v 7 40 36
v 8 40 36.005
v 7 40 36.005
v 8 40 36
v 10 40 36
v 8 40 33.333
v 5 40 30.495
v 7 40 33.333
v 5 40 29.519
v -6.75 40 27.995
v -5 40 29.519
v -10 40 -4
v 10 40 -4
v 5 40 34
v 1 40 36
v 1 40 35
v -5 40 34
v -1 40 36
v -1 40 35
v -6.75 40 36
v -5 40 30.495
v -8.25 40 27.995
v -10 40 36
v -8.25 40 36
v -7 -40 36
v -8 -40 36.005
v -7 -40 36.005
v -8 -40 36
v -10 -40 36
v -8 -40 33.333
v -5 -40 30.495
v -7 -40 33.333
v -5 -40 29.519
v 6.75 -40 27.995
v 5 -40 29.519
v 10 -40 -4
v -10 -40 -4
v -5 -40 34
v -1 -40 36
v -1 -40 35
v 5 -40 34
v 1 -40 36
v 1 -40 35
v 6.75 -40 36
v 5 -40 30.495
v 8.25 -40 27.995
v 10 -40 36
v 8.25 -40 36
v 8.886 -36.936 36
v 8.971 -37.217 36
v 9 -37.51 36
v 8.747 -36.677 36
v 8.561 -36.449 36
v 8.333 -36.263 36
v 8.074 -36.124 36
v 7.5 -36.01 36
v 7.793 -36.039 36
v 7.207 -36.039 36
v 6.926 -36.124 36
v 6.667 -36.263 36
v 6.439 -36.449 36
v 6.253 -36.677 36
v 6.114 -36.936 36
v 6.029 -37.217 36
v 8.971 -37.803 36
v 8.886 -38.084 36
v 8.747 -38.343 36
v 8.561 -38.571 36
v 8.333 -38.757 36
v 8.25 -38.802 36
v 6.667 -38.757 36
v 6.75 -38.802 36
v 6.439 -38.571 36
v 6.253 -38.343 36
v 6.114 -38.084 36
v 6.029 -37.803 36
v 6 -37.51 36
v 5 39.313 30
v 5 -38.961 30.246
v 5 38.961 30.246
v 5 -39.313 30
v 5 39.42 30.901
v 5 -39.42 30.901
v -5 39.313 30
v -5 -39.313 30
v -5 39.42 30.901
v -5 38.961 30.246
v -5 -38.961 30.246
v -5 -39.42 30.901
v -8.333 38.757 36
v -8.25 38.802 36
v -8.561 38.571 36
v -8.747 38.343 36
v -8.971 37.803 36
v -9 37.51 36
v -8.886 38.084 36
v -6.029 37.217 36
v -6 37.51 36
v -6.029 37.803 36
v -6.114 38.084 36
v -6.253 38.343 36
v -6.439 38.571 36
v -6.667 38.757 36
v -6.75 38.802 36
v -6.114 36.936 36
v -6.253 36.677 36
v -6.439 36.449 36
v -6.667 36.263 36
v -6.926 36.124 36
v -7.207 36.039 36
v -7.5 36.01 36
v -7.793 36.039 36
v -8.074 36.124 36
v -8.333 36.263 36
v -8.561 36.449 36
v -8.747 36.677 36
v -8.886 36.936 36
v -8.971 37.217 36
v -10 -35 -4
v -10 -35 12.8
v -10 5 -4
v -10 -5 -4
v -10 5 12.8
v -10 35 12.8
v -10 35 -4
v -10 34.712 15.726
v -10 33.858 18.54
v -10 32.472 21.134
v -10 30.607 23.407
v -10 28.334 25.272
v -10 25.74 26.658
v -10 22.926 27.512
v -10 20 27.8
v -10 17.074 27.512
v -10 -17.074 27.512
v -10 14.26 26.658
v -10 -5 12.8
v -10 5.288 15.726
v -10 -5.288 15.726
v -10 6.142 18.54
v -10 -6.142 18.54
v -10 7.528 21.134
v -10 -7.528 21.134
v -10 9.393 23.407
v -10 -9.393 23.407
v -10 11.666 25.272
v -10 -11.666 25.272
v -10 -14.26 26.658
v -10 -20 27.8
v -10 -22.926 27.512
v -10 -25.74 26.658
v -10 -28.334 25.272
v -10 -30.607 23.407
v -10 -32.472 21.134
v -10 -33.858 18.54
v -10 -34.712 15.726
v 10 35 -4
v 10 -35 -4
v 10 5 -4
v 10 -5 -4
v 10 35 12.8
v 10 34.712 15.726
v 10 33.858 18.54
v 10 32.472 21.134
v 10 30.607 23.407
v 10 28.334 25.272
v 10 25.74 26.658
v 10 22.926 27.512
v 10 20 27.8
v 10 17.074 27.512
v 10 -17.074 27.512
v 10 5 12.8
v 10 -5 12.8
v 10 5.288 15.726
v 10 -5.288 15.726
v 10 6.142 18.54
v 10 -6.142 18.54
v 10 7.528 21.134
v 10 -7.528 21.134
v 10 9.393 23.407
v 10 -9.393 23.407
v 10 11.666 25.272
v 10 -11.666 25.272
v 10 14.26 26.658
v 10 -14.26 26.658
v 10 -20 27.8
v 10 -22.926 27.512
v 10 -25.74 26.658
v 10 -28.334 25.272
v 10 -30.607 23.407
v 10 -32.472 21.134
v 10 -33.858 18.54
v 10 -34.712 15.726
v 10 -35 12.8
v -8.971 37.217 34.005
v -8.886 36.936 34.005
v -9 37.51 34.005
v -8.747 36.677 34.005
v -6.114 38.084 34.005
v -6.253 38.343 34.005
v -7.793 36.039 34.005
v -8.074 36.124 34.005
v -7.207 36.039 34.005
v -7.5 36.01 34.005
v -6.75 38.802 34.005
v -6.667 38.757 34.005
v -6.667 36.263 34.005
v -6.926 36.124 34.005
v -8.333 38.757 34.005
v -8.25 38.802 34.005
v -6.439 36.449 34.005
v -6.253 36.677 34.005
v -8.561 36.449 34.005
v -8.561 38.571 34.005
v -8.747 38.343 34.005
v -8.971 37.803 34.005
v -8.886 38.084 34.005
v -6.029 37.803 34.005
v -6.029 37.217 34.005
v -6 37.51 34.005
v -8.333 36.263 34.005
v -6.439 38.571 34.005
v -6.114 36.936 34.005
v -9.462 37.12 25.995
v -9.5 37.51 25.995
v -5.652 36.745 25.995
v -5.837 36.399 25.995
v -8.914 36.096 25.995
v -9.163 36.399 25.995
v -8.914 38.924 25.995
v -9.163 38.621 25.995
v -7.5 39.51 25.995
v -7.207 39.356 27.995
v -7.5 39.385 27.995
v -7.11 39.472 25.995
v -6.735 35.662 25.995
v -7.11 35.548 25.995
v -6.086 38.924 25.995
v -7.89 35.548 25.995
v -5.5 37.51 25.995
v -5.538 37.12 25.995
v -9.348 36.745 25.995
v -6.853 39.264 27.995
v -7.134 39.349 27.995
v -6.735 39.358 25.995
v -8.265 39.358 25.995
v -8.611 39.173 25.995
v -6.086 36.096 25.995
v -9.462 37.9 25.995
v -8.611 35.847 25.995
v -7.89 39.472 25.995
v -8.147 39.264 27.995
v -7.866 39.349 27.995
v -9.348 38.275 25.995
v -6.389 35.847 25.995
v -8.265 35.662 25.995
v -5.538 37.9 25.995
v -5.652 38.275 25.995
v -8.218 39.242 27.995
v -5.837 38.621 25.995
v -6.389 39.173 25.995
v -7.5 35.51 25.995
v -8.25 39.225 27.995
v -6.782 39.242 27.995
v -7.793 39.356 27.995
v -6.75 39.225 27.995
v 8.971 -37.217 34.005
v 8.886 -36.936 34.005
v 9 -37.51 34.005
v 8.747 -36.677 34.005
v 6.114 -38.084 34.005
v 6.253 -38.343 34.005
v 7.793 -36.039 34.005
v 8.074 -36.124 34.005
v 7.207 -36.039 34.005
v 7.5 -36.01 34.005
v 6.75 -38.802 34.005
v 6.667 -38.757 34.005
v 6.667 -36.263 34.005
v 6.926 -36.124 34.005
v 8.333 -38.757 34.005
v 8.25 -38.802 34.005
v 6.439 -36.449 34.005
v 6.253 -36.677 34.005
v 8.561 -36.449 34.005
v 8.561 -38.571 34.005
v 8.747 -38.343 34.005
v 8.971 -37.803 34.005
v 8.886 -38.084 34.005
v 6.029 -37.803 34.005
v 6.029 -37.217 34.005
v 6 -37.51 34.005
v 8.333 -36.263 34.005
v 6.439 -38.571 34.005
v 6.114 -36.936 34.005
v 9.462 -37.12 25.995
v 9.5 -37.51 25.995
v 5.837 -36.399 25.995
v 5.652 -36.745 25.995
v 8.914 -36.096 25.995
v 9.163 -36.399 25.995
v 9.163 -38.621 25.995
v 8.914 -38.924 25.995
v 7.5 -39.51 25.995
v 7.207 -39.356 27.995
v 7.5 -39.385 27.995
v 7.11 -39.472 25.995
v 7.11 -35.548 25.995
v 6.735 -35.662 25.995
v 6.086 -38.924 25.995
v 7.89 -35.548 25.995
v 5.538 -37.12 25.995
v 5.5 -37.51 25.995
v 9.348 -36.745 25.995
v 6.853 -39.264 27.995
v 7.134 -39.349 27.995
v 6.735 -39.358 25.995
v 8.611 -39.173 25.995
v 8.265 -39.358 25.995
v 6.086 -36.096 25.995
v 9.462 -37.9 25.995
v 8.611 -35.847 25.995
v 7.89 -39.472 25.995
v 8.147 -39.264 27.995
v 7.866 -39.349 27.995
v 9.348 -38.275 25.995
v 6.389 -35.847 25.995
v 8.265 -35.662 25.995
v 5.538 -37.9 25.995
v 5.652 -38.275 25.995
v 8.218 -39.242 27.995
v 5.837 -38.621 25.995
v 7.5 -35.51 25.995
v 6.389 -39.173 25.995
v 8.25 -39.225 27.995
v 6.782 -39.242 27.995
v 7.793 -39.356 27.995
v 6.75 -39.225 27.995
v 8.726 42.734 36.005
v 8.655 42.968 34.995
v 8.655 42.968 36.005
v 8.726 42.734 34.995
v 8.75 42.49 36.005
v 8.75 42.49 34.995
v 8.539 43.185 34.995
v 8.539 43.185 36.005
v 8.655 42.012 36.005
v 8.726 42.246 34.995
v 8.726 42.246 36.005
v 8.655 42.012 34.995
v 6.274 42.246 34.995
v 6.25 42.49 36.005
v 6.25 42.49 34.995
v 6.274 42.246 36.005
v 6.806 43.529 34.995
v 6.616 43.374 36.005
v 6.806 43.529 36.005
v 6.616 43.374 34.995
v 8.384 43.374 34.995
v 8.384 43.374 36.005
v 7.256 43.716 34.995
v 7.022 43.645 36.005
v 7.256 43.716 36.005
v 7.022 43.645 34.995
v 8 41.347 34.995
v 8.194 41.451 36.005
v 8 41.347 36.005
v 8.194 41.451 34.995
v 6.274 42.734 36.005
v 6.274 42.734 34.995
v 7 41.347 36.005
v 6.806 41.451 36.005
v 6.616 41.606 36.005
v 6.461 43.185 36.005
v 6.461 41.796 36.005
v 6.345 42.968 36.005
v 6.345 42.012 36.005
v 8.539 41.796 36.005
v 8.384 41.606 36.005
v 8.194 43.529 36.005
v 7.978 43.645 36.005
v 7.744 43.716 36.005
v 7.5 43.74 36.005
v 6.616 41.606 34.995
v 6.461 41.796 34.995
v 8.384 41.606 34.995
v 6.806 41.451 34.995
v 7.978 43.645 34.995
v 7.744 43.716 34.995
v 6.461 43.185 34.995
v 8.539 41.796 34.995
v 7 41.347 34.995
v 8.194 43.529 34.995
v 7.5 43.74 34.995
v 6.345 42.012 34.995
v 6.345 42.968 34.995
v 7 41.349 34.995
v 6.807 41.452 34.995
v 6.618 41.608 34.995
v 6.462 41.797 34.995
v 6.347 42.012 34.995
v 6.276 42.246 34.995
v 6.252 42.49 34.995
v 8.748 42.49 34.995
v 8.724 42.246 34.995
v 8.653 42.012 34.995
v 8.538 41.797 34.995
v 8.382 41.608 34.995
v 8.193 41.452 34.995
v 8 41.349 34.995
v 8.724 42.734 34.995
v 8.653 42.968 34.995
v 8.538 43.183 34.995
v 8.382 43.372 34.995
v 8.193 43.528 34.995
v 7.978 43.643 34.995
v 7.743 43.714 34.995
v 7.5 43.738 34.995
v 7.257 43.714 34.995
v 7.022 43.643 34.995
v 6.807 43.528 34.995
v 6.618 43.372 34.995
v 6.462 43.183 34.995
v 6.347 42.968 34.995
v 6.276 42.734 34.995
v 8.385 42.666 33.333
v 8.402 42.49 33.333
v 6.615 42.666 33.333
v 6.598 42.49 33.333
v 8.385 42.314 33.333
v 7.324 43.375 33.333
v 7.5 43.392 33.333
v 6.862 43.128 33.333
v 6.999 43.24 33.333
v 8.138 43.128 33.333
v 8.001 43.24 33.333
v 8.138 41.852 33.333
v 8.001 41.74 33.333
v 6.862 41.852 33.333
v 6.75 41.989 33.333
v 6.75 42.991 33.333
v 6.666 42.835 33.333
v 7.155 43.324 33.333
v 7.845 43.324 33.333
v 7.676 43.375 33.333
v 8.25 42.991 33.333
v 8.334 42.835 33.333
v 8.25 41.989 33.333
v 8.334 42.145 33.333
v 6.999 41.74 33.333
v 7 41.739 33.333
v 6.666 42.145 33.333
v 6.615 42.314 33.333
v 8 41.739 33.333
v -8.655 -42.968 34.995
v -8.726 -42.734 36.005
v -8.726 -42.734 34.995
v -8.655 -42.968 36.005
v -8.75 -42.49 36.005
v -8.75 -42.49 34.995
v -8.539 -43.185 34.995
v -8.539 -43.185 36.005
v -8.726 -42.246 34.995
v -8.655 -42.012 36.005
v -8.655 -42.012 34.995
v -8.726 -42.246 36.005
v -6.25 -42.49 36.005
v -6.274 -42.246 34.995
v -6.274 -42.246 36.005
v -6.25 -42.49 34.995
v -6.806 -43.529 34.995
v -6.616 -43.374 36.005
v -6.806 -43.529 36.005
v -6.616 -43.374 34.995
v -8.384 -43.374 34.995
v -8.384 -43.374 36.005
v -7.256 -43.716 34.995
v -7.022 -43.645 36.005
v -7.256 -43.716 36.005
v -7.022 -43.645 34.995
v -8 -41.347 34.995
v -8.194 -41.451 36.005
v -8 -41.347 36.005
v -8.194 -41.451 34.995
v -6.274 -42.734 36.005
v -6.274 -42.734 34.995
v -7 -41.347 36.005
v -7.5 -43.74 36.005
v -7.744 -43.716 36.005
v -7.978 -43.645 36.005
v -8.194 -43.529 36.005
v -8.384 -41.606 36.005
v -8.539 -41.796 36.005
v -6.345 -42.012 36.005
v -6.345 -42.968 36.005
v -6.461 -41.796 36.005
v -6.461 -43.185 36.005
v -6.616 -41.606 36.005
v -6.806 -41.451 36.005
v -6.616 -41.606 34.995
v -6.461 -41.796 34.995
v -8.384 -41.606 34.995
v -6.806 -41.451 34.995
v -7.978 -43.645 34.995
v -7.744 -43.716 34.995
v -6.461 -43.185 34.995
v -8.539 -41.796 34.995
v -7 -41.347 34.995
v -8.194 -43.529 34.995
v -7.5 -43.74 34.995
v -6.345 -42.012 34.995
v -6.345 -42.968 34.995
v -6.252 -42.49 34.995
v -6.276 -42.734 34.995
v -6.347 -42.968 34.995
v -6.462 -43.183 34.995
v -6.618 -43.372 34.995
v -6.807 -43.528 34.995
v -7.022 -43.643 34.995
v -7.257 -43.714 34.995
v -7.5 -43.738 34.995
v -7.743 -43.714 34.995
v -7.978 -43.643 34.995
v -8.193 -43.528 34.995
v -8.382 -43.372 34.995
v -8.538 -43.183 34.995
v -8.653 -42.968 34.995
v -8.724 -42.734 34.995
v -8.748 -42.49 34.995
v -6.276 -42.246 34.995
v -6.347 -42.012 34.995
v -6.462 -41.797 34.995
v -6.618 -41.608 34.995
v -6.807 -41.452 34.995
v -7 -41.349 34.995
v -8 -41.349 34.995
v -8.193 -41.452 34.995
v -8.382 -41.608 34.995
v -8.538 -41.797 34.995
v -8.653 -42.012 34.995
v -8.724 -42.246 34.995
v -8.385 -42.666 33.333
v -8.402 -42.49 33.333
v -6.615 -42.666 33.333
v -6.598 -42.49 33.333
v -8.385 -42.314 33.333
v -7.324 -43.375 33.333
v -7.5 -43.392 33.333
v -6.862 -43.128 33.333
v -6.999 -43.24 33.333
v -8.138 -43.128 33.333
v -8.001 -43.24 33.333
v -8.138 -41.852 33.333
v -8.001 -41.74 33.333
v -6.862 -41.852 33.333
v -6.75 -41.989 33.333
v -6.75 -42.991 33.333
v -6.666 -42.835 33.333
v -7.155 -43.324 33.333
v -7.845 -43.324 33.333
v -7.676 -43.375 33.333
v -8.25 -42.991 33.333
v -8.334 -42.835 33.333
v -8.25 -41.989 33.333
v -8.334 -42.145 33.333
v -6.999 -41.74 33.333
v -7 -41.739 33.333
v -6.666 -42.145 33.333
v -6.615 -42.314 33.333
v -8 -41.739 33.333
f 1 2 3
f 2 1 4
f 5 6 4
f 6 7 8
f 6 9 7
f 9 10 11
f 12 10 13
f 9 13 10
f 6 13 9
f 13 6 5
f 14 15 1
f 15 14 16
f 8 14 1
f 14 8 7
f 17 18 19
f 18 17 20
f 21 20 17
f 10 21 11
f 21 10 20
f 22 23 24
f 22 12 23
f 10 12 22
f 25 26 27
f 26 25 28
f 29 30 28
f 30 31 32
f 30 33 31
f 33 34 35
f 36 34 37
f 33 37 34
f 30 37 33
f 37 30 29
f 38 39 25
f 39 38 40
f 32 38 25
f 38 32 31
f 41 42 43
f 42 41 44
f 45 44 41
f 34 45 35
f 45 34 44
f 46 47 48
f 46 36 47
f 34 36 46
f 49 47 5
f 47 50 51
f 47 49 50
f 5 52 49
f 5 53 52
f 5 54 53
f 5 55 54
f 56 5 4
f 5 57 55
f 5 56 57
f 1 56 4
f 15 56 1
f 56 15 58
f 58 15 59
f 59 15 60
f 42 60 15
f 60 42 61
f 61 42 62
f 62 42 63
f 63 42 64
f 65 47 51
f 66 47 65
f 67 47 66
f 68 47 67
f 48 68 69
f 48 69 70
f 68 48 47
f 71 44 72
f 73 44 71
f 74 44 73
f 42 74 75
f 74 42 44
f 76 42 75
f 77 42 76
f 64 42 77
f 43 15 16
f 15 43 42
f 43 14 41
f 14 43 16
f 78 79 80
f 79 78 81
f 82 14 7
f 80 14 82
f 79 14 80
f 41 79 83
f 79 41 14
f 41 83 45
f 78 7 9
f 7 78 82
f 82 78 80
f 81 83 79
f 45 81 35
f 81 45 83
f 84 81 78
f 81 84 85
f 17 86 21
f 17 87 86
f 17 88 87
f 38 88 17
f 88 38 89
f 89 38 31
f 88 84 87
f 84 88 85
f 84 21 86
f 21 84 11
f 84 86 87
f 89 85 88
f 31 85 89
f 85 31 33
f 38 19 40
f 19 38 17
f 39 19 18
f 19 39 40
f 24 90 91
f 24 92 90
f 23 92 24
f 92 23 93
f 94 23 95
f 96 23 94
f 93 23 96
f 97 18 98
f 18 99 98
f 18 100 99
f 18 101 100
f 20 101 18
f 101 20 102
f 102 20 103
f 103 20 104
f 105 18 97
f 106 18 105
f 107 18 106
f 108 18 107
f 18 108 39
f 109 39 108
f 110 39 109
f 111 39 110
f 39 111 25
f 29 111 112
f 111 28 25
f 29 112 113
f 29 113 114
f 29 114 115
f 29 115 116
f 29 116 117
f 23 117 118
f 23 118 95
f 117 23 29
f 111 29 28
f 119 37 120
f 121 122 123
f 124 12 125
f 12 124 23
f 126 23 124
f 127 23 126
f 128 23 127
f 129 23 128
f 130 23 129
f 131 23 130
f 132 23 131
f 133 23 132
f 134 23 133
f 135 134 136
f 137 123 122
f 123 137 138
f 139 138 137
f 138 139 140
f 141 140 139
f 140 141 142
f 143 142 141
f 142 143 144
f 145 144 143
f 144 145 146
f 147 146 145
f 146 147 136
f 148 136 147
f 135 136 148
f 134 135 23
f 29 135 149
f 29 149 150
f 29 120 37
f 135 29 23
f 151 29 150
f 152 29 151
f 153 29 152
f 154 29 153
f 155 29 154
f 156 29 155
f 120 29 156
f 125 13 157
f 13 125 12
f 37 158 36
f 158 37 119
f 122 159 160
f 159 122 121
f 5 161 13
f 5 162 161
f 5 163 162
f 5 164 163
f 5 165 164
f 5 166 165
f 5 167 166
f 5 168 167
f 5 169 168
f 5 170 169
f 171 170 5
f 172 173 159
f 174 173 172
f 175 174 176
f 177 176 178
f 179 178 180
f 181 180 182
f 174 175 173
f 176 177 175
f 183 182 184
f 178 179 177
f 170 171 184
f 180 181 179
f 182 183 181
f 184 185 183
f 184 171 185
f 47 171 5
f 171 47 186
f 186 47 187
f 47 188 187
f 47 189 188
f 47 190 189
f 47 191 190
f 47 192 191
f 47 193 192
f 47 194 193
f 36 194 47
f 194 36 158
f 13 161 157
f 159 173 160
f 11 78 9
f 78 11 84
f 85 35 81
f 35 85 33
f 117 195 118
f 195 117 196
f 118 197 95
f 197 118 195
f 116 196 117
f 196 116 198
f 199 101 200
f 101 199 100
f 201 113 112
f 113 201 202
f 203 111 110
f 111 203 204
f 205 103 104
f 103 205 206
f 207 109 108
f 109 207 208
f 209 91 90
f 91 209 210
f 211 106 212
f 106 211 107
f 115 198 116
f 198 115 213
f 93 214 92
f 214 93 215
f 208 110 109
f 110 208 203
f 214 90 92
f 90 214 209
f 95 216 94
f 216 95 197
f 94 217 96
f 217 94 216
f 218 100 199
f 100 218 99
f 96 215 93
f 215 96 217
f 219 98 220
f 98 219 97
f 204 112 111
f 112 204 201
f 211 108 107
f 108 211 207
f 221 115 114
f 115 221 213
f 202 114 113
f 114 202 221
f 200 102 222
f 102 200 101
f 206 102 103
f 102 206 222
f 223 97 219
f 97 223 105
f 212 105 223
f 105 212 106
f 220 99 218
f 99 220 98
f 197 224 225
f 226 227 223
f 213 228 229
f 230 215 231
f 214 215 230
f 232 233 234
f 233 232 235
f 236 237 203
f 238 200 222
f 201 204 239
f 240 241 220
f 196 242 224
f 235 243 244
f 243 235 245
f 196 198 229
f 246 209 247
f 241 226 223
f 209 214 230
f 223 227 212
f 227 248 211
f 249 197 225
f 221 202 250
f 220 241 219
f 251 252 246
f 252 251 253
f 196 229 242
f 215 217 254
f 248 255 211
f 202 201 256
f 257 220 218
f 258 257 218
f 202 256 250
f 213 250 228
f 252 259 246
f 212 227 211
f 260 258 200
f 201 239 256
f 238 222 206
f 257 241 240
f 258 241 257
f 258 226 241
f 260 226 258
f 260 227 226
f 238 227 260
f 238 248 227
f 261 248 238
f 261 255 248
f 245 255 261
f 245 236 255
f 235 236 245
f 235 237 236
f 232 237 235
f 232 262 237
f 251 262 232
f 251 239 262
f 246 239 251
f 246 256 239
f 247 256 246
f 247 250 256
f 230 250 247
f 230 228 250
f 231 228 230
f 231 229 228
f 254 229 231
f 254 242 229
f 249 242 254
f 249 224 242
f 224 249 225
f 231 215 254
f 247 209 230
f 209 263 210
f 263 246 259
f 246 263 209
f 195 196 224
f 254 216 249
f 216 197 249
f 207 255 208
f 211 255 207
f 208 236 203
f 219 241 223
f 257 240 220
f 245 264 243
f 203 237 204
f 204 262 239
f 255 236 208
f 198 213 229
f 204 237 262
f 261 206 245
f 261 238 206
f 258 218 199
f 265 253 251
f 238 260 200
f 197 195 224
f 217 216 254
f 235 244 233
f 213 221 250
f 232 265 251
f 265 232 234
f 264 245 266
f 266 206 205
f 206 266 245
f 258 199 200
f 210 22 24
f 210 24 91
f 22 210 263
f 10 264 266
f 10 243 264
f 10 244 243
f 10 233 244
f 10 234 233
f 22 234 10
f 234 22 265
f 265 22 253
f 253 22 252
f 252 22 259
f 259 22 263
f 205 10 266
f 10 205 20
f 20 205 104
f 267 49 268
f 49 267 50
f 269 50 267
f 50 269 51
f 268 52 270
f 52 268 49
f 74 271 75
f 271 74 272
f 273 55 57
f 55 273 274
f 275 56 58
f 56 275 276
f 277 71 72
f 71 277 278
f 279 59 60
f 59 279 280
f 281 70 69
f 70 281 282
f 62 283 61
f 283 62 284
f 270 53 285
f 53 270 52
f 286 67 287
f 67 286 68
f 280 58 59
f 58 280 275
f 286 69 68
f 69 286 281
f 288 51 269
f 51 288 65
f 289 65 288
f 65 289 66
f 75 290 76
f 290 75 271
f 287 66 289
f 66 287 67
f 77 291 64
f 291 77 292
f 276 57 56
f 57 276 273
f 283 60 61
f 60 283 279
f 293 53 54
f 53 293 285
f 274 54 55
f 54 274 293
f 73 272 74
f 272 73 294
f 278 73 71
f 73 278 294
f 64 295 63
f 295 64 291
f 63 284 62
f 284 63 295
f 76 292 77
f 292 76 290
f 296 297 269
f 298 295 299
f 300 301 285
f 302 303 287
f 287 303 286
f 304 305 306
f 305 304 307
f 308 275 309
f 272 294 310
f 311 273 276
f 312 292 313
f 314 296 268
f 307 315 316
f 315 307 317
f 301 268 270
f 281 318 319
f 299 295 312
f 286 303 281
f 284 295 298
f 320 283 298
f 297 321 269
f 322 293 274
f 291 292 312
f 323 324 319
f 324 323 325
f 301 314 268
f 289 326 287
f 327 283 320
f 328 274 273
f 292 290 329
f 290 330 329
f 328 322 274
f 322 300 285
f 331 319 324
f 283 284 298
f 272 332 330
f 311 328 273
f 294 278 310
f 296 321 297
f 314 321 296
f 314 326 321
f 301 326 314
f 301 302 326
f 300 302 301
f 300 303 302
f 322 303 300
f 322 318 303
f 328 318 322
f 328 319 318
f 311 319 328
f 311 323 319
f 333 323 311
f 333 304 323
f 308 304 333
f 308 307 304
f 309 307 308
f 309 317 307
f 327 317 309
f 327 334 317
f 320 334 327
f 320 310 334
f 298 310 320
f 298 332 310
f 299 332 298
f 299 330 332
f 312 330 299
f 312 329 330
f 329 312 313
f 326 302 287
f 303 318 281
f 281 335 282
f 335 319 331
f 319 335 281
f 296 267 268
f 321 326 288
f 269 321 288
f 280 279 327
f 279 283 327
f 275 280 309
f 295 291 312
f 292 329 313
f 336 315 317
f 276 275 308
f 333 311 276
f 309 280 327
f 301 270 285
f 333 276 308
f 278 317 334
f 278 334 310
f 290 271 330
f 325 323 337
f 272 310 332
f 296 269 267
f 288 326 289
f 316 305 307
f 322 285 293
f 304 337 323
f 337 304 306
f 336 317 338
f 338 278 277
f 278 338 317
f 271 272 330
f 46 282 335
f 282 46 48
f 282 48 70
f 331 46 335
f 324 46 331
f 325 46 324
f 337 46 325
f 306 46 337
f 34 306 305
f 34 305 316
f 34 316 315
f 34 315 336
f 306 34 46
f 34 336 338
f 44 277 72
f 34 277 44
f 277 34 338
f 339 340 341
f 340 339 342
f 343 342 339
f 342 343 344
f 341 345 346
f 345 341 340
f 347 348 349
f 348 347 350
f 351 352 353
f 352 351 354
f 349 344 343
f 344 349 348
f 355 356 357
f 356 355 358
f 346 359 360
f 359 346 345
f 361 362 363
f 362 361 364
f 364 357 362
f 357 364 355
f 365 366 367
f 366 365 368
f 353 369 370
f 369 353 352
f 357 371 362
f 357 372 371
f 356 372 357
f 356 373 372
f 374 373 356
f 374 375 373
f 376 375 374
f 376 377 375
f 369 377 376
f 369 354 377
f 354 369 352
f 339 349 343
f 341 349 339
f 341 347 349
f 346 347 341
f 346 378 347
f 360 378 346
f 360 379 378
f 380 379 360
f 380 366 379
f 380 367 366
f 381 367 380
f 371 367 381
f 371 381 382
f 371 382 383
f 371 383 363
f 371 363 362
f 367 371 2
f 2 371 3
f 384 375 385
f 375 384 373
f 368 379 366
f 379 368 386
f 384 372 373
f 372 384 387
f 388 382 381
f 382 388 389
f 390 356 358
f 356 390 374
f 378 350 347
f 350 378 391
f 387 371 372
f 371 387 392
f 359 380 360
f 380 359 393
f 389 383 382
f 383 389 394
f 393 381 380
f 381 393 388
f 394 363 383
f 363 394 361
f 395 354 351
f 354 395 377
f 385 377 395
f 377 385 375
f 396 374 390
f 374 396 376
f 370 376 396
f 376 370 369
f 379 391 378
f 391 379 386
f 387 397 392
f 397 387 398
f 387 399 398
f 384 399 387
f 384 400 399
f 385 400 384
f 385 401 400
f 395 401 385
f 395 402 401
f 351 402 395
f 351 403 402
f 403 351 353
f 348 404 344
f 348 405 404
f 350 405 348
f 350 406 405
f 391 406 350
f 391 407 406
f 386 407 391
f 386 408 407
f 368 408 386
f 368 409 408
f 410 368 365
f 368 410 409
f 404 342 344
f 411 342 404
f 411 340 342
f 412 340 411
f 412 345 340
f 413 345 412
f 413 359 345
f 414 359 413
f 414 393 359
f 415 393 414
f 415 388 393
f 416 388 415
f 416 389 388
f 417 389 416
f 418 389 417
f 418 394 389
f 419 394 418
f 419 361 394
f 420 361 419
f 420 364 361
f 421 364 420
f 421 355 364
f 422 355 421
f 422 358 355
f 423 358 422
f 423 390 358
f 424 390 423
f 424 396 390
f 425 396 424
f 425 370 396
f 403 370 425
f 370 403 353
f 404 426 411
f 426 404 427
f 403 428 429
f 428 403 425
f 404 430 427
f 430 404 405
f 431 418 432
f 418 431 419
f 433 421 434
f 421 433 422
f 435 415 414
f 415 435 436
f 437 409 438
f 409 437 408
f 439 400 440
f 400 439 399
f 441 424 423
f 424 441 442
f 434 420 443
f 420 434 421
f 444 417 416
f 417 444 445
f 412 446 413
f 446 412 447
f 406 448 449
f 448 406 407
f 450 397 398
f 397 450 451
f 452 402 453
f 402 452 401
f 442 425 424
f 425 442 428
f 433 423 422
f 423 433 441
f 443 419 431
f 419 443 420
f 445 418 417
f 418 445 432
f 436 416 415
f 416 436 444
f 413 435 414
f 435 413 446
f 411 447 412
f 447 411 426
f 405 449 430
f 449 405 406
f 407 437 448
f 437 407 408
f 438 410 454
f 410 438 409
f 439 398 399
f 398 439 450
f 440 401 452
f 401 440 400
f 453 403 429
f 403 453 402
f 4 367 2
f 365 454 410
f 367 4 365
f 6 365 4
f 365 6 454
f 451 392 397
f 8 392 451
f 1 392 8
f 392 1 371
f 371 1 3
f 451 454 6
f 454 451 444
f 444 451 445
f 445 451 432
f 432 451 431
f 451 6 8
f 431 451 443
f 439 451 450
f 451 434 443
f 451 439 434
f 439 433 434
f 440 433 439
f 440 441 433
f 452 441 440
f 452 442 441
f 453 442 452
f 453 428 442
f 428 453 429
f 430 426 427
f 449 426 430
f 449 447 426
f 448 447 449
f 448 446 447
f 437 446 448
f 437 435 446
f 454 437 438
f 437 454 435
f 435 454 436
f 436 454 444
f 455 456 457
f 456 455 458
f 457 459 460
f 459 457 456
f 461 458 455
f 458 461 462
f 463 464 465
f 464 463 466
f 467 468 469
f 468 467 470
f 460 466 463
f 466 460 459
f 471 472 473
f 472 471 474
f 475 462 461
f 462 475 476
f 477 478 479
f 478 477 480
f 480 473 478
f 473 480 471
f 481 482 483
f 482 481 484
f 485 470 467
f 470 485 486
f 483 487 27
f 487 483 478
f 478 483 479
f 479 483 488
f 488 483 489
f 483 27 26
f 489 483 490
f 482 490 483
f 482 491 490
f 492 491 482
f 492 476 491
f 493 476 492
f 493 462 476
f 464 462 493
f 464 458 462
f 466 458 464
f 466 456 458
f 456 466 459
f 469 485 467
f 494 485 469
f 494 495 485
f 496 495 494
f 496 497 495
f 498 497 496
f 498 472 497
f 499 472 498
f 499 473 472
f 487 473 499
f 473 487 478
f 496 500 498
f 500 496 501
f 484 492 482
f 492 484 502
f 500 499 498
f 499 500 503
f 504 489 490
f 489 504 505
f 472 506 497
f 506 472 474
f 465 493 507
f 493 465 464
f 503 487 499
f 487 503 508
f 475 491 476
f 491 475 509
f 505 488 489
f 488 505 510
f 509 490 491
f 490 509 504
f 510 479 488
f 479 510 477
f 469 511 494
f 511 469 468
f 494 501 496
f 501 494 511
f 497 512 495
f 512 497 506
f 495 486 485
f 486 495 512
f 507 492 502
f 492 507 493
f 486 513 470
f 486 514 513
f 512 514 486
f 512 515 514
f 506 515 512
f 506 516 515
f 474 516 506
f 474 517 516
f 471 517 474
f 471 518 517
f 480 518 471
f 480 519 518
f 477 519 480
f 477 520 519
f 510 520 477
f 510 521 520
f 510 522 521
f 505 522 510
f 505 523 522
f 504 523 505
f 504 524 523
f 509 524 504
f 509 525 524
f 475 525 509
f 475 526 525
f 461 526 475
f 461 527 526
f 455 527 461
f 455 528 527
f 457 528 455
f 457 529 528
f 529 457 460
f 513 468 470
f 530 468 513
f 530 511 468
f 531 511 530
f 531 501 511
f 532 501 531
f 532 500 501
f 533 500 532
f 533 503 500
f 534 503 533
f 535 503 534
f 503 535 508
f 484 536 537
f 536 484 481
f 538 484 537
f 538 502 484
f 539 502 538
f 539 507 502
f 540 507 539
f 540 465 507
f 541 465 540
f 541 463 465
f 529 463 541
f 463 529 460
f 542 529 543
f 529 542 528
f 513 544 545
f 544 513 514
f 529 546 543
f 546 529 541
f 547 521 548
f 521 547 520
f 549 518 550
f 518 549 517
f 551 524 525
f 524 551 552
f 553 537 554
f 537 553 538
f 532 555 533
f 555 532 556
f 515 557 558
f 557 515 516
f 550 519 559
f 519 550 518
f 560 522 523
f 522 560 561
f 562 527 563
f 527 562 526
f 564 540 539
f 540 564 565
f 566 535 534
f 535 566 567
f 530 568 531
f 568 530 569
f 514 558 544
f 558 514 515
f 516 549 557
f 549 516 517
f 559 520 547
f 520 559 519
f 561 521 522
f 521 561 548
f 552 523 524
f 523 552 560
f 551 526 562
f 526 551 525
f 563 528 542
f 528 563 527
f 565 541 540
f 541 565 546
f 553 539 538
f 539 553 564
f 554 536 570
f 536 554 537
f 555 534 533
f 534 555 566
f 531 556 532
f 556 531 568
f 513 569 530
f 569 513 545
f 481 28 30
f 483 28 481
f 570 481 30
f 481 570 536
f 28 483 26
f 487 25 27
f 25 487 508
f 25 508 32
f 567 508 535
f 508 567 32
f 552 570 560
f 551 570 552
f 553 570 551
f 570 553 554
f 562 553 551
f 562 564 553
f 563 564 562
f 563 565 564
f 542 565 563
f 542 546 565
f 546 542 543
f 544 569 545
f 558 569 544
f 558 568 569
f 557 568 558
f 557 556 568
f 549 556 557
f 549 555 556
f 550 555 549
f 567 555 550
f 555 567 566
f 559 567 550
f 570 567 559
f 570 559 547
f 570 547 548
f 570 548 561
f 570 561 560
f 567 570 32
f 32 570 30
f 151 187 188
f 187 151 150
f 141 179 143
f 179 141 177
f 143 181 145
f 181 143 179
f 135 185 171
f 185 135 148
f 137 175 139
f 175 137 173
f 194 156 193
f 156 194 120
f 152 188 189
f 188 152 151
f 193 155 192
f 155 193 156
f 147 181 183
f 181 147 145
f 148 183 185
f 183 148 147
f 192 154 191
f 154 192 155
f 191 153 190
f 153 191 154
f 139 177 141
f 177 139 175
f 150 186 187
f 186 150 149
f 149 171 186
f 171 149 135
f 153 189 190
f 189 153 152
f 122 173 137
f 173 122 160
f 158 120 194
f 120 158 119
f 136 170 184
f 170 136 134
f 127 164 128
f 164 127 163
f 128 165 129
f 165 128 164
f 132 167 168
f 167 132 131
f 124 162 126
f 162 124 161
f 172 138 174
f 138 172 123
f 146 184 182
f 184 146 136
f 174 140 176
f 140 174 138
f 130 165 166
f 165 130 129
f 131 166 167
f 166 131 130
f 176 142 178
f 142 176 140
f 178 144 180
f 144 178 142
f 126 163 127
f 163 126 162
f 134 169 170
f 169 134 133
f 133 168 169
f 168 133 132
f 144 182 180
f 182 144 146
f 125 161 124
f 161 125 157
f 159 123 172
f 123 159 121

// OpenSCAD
/*
    straight two grid tile train tube track
*/
include <train_tube_track.scad>;

difference() {
    translate([0, 0, height])
    straight_track_h_double_plug(2*grid);
    translate([0, -grid/2, 0])
    gate_cutout();
    translate([0, grid/2, 0])
    gate_cutout();
}
